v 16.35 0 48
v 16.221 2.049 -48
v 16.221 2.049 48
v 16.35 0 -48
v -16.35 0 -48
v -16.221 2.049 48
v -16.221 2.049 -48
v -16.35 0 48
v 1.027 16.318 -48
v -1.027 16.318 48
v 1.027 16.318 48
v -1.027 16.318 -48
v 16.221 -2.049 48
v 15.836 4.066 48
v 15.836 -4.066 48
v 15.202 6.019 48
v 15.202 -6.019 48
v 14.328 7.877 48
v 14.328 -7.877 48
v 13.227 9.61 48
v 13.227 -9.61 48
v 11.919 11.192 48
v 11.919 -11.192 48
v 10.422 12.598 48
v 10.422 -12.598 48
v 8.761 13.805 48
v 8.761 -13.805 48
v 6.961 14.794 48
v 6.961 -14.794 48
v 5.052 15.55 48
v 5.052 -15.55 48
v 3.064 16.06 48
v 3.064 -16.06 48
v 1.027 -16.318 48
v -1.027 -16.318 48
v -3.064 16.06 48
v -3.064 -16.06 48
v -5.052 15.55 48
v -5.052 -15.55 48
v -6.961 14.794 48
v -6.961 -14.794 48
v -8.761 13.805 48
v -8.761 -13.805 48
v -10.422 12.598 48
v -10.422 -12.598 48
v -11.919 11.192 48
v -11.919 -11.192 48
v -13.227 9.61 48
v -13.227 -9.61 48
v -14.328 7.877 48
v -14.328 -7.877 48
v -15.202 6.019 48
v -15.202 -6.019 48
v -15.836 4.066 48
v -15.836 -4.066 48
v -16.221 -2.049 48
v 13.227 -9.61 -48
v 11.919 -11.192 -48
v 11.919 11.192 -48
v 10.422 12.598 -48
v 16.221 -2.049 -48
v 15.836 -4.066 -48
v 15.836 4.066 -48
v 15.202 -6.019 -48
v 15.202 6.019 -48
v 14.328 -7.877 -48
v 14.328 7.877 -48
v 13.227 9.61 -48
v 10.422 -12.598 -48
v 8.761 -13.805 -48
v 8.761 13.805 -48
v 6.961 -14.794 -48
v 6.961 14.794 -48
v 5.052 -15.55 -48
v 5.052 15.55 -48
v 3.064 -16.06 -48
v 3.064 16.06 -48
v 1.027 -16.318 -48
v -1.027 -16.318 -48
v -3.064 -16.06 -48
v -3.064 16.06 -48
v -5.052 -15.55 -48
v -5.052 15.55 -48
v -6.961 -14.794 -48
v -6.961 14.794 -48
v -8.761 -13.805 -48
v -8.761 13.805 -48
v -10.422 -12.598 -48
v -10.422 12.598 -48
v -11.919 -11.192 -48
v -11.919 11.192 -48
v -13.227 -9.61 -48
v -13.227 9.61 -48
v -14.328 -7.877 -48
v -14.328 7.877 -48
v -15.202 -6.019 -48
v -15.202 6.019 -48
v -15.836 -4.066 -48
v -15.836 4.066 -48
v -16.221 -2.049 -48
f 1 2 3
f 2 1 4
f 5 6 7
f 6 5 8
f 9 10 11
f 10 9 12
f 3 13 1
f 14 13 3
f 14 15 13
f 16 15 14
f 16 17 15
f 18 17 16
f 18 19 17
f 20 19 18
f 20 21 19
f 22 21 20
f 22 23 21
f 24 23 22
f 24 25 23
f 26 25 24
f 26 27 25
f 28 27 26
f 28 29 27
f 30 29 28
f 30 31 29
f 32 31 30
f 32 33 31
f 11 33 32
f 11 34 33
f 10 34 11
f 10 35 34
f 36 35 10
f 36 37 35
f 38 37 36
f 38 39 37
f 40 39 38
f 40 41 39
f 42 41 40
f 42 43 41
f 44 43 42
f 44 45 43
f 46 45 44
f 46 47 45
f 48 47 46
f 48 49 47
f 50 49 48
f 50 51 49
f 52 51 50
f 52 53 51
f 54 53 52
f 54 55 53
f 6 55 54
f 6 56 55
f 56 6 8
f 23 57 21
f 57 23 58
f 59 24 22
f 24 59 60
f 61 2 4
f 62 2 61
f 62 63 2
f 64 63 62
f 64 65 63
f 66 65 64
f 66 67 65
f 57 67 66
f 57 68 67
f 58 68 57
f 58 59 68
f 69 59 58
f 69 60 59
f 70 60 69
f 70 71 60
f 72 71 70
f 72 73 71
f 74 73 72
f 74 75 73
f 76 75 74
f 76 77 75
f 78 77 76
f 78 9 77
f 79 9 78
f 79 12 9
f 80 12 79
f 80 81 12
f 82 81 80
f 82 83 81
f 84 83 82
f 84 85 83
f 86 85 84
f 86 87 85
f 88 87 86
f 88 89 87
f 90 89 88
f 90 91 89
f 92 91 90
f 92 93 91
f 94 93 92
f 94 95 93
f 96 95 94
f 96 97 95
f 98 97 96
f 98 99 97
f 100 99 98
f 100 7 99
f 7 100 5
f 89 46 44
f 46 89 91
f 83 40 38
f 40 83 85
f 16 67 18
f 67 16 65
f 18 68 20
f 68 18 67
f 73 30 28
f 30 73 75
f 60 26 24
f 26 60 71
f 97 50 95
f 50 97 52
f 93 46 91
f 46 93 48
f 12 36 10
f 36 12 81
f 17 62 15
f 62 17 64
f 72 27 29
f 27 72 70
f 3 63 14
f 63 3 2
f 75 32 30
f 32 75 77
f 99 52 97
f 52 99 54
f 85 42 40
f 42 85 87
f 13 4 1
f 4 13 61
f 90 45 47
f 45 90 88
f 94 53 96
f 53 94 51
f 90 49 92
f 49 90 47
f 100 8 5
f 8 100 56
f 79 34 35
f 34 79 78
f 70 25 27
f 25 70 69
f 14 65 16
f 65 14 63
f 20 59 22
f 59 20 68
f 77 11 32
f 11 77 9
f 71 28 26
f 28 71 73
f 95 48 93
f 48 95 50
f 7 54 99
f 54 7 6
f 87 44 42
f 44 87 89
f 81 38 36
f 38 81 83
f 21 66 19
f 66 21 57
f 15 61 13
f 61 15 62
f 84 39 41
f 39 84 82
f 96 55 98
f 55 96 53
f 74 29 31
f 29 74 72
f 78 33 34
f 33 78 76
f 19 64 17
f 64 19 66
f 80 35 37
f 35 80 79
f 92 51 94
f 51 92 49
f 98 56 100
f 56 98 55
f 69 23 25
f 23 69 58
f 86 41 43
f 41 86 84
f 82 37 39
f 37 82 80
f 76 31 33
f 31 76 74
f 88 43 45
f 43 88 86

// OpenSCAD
$fn = 50;


difference() {
	union() {
		translate(v = [0, 0, -48.0000000000]) {
			cylinder(h = 96, r = 16.3500000000);
		}
	}
	union() {
		translate(v = [0, 0, -100.0000000000]) {
			cylinder(h = 200, r = 0);
		}
	}
}
